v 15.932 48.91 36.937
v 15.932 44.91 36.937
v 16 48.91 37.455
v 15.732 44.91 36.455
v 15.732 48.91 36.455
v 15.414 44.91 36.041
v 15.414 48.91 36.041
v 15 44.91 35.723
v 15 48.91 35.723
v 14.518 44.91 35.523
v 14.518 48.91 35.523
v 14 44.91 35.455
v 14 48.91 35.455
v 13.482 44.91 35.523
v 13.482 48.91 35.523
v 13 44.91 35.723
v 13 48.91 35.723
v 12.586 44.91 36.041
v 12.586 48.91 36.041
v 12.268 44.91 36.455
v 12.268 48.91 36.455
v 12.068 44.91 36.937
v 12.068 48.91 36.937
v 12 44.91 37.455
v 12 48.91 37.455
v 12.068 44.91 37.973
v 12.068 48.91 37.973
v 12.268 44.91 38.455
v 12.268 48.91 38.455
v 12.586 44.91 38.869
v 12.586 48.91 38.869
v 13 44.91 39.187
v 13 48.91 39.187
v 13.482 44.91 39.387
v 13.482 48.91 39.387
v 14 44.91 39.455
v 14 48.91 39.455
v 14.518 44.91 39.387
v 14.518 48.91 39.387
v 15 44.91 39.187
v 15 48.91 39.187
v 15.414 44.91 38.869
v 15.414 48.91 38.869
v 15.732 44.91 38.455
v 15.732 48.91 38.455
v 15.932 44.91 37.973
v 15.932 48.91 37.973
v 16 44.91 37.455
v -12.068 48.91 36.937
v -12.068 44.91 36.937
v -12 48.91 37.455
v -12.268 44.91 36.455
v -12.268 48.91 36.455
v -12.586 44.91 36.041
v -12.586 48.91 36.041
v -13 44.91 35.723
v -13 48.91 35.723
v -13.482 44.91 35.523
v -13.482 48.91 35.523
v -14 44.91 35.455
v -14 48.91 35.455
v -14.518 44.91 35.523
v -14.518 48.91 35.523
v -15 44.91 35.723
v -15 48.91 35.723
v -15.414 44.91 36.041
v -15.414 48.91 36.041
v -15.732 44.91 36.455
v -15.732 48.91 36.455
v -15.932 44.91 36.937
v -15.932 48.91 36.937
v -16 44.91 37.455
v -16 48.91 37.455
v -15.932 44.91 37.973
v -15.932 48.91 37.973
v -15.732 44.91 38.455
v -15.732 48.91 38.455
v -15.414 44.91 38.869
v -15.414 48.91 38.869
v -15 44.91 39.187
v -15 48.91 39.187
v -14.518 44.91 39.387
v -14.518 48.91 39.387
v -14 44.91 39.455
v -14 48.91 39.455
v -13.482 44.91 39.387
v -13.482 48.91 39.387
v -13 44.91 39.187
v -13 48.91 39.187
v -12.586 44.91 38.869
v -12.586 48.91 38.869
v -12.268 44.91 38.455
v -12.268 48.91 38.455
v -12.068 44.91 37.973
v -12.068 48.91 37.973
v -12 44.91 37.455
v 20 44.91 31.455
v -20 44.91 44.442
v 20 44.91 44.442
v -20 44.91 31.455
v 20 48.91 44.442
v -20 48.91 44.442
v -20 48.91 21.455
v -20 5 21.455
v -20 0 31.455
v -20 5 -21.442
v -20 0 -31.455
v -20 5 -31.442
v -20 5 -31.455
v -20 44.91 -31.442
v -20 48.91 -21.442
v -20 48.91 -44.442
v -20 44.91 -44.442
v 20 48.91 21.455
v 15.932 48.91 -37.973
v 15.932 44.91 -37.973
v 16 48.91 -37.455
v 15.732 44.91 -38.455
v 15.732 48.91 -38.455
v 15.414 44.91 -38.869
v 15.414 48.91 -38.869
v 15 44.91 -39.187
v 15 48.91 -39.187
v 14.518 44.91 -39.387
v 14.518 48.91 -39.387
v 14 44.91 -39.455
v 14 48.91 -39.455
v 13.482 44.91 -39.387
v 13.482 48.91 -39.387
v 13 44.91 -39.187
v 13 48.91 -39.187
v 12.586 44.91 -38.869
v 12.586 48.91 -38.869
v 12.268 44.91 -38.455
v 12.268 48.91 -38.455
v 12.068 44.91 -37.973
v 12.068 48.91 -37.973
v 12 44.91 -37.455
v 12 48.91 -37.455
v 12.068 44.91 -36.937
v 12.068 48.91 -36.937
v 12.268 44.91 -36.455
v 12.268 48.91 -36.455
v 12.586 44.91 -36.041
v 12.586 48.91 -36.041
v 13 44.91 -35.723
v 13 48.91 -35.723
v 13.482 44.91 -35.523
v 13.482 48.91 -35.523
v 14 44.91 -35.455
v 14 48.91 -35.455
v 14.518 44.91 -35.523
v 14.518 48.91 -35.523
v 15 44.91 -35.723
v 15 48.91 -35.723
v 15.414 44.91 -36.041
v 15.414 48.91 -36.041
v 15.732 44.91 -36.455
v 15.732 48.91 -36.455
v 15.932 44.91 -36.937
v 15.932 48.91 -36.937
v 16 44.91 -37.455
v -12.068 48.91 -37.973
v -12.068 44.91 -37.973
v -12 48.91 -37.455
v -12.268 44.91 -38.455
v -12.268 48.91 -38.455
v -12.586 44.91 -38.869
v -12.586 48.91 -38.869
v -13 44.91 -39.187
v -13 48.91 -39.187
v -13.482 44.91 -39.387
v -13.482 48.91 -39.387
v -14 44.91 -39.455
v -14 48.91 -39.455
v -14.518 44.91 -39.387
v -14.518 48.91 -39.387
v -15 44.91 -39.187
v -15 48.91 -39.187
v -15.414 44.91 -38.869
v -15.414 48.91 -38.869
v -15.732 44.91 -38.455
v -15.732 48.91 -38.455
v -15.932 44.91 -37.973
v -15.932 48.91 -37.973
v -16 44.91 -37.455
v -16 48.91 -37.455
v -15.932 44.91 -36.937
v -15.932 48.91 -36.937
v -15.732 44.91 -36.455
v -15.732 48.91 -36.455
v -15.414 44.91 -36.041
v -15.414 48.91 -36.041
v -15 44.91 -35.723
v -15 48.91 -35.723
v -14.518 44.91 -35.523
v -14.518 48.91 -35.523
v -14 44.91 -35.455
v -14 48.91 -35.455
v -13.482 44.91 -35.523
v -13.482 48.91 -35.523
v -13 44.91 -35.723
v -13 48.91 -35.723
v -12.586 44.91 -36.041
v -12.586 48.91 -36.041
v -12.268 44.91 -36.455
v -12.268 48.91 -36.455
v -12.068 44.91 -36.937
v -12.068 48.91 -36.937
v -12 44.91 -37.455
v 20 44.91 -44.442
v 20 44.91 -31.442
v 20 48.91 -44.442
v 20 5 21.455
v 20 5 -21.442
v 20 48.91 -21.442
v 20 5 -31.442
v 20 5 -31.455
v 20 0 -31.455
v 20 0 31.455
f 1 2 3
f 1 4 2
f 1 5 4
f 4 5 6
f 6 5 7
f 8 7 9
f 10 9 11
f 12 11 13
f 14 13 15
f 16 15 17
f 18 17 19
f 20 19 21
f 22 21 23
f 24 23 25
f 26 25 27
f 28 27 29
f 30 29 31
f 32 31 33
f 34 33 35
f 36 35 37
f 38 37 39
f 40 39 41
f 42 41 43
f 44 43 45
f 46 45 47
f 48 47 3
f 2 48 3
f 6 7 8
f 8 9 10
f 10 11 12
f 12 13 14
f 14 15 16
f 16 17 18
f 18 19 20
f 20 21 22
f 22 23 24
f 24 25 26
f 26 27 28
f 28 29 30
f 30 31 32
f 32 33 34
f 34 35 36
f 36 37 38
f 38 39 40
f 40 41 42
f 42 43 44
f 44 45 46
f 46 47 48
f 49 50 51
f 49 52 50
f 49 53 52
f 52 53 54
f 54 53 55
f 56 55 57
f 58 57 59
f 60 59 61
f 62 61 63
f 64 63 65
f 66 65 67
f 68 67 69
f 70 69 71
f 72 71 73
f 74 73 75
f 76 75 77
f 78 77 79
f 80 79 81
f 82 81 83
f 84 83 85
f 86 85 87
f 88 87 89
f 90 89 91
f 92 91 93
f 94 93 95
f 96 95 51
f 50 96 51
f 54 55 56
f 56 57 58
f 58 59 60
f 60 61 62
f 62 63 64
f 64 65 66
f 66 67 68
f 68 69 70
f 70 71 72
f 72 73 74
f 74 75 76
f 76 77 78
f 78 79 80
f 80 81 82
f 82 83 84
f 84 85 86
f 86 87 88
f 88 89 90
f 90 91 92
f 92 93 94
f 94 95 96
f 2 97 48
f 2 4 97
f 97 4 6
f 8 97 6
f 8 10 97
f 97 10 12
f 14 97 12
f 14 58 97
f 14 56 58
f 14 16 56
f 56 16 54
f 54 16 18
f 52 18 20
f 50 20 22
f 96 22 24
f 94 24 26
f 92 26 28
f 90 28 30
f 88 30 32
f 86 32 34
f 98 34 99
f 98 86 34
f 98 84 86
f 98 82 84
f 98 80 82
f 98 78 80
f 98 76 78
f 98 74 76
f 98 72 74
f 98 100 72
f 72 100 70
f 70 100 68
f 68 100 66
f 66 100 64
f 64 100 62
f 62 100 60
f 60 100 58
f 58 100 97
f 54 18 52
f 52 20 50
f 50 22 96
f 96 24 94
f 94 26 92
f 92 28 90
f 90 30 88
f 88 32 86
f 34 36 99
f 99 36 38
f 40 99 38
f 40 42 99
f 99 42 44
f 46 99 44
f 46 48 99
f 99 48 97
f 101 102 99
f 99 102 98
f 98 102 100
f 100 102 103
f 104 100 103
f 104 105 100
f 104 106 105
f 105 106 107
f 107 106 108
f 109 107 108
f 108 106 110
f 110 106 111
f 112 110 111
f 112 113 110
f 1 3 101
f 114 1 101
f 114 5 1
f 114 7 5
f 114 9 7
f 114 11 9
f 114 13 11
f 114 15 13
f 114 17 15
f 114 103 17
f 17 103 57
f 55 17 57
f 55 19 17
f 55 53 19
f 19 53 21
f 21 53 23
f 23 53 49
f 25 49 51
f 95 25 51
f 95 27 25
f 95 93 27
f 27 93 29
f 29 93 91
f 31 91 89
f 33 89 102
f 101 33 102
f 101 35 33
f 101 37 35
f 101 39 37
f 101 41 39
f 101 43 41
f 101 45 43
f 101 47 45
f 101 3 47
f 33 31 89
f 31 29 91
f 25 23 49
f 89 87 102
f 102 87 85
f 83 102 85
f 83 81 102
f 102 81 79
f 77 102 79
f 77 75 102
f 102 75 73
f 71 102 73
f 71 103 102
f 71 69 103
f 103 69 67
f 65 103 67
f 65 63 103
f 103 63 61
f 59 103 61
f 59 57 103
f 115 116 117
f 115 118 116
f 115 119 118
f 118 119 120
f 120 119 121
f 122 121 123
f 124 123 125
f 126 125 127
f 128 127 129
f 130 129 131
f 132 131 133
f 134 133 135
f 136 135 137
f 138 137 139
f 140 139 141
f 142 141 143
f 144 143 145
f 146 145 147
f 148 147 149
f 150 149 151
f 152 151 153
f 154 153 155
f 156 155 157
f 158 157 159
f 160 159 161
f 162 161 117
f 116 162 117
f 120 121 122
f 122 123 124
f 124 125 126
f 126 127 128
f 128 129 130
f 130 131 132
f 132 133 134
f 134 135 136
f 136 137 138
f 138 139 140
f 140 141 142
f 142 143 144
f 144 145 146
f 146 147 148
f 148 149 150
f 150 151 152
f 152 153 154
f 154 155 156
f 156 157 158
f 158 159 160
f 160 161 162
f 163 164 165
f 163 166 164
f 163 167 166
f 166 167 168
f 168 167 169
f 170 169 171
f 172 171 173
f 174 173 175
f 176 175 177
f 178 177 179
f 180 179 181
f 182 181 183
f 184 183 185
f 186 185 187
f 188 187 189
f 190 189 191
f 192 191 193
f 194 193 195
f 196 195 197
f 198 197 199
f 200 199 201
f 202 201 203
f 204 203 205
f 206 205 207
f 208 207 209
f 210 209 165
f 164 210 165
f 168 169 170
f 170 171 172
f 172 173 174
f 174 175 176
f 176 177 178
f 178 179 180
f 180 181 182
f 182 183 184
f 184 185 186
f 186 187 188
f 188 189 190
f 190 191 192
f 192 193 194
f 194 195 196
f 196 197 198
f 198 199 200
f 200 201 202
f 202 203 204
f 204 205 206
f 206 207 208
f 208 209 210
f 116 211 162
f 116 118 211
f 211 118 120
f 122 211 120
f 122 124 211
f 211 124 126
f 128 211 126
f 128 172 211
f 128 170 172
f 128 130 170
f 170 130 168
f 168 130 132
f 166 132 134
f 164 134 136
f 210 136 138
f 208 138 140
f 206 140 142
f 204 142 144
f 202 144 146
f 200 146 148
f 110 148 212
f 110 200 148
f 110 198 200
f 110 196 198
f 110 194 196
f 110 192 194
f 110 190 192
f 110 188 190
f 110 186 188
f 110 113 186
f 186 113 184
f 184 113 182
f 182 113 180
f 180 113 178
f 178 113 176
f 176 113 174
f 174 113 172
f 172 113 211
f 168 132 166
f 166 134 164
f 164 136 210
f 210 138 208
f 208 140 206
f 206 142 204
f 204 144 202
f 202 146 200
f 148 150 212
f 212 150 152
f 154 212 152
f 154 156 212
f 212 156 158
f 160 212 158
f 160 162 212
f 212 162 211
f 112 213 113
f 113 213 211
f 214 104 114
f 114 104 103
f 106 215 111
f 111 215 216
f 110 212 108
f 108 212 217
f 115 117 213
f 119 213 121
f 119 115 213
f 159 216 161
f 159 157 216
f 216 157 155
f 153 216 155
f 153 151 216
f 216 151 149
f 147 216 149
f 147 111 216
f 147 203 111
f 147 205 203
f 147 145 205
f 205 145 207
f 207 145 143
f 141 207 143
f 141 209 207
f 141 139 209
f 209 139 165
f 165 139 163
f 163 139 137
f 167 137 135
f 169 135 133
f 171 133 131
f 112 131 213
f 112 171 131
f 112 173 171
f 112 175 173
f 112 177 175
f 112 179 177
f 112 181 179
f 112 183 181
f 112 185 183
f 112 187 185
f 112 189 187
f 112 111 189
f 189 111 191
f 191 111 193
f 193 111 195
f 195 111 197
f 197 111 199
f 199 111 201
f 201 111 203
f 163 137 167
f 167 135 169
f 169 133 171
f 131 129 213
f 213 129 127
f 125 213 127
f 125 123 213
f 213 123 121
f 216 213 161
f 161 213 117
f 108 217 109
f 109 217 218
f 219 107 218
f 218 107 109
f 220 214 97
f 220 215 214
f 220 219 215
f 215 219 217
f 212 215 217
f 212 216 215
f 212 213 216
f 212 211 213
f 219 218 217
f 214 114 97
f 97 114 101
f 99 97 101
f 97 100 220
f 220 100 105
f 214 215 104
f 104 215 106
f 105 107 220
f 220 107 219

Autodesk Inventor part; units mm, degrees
ref_plane "YZ Plane" through (0, 0, 0) normal (1, 0, 0) x (0, 1, 0)
ref_plane "XZ Plane" through (0, 0, 0) normal (0, 1, 0) x (-1, 0, 0)
sketch "Sketch1" plane through (0, 0, 0) normal (0, 1, 0) x (-1, 0, 0)
  line L0 (20, 31.455) -> (-20, 31.455)
  line L1 (-20, 31.455) -> (-20, -31.455)
  line L2 (-20, -31.455) -> (20, -31.455)
  line L3 (20, -31.455) -> (20, 31.455)
  point P0 (0, 0)
  point P1 (0, 31.455)
  point P2 (20, 0)
  dimension "d0" = 40
  dimension "d1" = 62.91
extrude "Extrusion1" add sketch "Sketch1" along normal blind 5
sketch "Sketch2" plane through (0, 5, 0) normal (0, 1, 0) x (1, 0, 0)
  line L0 (-20, -31.455) -> (20, -31.455) projected
  line L1 (20, -31.455) -> (20, 31.455) projected
  line L2 (-20, -31.455) -> (20, -31.455)
  line L3 (20, -31.455) -> (20, -21.455)
  line L4 (20, -21.455) -> (-20, -21.455)
  line L5 (-20, -21.455) -> (-20, -31.455)
  line L6 (-20, 31.4422) -> (20, 31.4422)
  line L7 (20, 31.4422) -> (20, 21.4422)
  line L8 (20, 21.4422) -> (-20, 21.4422)
  line L9 (-20, 21.4422) -> (-20, 31.4422)
  line L10 (20, 31.455) -> (-20, 31.455) projected
  point P0 (0, 0)
  dimension "d4" = 10
  dimension "d5" = 10
  dimension "d6" = 0.0128
  dimension "d7" = 40
extrude "Extrusion2" add sketch "Sketch2" along normal blind 43.91
sketch "Sketch3" plane through (20, 5, -31.4422) normal (0, 0, -1) x (-1, 0, 0)
  line L0 (40, -5) -> (40, 43.91) projected
  line L1 (0, -5) -> (0, 43.91) projected
  line L2 (40, 43.91) -> (0, 43.91)
  line L3 (0, 43.91) -> (0, 39.91)
  line L4 (0, 39.91) -> (40, 39.91)
  line L5 (40, 39.91) -> (40, 43.91)
  point P0 (20, -5)
  dimension "d10" = 4
extrude "Extrusion3" add sketch "Sketch3" along normal blind 13
sketch "Sketch5" plane through (-20, 44.91, -31.4422) normal (0, -1, 0) x (1, 0, 0)
  circle A0 centre (34, -6.0128) radius 2
  circle A1 centre (6, -6.0128) radius 2
  line L0 (40, 0) -> (40, -13) projected
  line L1 (0, 0) -> (0, -13) projected
  line L2 (40, -0.0128) -> (0, -0.0128) projected
  point P0 (20, 31.4422)
  dimension "d17" = 4
  dimension "d18" = 4
  dimension "d19" = 6
  dimension "d20" = 6
  dimension "d21" = 6
extrude "Extrusion5" cut sketch "Sketch5" against normal through all
mirror "Mirror1" about plane through (0, 0, 0) normal (0, 0, 1) of "Extrusion3", "Extrusion5"
properties part number "BaseClamp"
